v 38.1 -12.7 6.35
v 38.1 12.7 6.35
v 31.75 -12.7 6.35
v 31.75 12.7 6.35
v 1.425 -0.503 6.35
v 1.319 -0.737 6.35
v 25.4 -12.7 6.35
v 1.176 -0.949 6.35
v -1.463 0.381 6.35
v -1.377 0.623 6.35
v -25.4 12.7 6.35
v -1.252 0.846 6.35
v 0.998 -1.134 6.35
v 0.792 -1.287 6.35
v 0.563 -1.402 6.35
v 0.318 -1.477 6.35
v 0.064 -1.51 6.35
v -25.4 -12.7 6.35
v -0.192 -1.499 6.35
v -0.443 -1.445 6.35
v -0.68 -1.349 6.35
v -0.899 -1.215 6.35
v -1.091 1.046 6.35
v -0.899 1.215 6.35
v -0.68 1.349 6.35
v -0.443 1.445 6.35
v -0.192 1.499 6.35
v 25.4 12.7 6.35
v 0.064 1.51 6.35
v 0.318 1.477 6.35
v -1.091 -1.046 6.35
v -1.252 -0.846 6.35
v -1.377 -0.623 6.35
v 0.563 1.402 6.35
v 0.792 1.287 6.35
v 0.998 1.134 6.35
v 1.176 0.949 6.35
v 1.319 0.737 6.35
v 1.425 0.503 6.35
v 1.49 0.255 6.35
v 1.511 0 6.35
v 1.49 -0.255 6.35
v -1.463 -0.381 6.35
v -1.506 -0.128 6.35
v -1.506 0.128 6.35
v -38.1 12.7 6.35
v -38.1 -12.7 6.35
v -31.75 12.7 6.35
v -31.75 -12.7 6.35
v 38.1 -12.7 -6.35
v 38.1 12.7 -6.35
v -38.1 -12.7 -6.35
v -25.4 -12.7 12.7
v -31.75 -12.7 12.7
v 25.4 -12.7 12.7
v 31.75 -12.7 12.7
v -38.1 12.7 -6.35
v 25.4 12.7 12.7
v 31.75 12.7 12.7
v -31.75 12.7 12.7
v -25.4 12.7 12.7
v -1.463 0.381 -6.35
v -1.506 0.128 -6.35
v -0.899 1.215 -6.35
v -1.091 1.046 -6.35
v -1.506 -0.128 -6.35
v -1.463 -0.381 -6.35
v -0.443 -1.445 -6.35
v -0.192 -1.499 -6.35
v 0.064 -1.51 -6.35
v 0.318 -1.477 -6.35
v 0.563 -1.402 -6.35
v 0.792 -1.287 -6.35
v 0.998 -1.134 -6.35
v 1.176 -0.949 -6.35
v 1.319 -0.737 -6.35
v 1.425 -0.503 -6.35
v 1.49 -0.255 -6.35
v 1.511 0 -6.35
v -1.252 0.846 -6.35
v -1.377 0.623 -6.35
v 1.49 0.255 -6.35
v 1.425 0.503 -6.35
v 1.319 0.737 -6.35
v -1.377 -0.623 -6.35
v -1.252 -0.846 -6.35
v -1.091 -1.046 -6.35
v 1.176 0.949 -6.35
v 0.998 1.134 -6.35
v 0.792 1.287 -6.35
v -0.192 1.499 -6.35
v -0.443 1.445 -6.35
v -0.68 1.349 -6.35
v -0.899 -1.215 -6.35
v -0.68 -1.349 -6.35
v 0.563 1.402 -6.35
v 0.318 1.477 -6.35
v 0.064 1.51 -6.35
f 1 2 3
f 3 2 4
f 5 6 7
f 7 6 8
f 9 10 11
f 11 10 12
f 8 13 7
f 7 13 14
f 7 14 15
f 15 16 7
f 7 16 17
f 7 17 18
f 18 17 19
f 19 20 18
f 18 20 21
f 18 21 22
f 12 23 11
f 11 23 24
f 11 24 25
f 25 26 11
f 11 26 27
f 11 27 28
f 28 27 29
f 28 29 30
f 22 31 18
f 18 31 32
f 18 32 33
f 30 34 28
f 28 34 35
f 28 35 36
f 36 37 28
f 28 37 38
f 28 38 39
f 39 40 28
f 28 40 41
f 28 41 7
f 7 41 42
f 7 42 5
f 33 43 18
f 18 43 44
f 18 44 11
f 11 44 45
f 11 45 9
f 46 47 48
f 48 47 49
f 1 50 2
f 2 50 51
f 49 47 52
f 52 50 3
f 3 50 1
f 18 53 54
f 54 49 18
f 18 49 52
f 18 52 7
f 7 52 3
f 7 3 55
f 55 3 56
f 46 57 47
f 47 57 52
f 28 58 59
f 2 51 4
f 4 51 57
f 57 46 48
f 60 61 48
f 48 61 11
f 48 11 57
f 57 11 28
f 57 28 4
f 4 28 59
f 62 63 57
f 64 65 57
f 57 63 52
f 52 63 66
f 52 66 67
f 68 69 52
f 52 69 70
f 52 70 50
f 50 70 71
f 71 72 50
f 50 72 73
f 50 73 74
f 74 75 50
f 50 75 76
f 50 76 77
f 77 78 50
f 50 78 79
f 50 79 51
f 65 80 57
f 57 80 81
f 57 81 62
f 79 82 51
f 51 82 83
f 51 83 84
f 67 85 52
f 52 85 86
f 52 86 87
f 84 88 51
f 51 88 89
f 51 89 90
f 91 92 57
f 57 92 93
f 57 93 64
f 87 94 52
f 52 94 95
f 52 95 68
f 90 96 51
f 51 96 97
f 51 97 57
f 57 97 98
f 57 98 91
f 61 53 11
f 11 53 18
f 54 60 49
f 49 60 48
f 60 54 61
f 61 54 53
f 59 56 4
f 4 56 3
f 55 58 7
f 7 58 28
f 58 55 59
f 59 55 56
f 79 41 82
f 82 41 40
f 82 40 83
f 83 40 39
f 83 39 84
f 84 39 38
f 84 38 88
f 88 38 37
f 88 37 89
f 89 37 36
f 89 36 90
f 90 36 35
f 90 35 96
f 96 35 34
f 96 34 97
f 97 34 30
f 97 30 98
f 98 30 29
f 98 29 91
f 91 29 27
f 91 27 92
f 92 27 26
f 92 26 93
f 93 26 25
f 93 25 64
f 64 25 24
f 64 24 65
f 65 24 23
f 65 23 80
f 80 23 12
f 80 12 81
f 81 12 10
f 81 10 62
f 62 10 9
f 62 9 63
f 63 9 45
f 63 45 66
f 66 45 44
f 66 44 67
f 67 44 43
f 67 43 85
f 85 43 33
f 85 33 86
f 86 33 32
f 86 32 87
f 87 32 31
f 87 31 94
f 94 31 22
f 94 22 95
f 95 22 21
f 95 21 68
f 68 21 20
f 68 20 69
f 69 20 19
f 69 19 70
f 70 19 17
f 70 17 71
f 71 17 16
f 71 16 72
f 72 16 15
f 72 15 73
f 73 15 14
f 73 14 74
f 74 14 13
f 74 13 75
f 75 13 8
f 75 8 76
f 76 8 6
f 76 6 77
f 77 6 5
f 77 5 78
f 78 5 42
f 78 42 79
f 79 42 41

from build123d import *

# Parameters (mm, degrees)
BOSS_EXTRUDE1_DEPTH      = 6.35
BOSS_EXTRUDE1_DEPTH_BACK = 6.35
SKETCH1_W                = 76.2
SKETCH1_H                = 25.4
SKETCH4_W                = 6.35
SKETCH4_H                = 25.4
BOSS_EXTRUDE3_DEPTH      = 6.35
SKETCH6_R                = 1.5113
CUT_EXTRUDE1_DEPTH       = 43.121134838


with BuildPart() as part:
    # Sketch1 → Boss-Extrude1 (new, two sides: drawn at the far end of the back side and taken through both)
    with BuildSketch(Plane.XY.offset(-BOSS_EXTRUDE1_DEPTH_BACK)):
        Rectangle(SKETCH1_W, SKETCH1_H)
    extrude(amount=BOSS_EXTRUDE1_DEPTH + BOSS_EXTRUDE1_DEPTH_BACK)

    # Sketch4 → Boss-Extrude3 (add)
    with BuildSketch(Plane.XY.offset(6.35)):
        with Locations((-28.575, 0)):
            Rectangle(SKETCH4_W, SKETCH4_H)
        with Locations((28.575, 0)):
            Rectangle(SKETCH4_W, SKETCH4_H)
    extrude(amount=BOSS_EXTRUDE3_DEPTH)

    # Sketch6 → Cut-Extrude1 (cut, through all)
    with BuildSketch(Plane.XY.offset(6.35)):
        Circle(SKETCH6_R)
    extrude(amount=-CUT_EXTRUDE1_DEPTH, mode=Mode.SUBTRACT)


solid = part.part
